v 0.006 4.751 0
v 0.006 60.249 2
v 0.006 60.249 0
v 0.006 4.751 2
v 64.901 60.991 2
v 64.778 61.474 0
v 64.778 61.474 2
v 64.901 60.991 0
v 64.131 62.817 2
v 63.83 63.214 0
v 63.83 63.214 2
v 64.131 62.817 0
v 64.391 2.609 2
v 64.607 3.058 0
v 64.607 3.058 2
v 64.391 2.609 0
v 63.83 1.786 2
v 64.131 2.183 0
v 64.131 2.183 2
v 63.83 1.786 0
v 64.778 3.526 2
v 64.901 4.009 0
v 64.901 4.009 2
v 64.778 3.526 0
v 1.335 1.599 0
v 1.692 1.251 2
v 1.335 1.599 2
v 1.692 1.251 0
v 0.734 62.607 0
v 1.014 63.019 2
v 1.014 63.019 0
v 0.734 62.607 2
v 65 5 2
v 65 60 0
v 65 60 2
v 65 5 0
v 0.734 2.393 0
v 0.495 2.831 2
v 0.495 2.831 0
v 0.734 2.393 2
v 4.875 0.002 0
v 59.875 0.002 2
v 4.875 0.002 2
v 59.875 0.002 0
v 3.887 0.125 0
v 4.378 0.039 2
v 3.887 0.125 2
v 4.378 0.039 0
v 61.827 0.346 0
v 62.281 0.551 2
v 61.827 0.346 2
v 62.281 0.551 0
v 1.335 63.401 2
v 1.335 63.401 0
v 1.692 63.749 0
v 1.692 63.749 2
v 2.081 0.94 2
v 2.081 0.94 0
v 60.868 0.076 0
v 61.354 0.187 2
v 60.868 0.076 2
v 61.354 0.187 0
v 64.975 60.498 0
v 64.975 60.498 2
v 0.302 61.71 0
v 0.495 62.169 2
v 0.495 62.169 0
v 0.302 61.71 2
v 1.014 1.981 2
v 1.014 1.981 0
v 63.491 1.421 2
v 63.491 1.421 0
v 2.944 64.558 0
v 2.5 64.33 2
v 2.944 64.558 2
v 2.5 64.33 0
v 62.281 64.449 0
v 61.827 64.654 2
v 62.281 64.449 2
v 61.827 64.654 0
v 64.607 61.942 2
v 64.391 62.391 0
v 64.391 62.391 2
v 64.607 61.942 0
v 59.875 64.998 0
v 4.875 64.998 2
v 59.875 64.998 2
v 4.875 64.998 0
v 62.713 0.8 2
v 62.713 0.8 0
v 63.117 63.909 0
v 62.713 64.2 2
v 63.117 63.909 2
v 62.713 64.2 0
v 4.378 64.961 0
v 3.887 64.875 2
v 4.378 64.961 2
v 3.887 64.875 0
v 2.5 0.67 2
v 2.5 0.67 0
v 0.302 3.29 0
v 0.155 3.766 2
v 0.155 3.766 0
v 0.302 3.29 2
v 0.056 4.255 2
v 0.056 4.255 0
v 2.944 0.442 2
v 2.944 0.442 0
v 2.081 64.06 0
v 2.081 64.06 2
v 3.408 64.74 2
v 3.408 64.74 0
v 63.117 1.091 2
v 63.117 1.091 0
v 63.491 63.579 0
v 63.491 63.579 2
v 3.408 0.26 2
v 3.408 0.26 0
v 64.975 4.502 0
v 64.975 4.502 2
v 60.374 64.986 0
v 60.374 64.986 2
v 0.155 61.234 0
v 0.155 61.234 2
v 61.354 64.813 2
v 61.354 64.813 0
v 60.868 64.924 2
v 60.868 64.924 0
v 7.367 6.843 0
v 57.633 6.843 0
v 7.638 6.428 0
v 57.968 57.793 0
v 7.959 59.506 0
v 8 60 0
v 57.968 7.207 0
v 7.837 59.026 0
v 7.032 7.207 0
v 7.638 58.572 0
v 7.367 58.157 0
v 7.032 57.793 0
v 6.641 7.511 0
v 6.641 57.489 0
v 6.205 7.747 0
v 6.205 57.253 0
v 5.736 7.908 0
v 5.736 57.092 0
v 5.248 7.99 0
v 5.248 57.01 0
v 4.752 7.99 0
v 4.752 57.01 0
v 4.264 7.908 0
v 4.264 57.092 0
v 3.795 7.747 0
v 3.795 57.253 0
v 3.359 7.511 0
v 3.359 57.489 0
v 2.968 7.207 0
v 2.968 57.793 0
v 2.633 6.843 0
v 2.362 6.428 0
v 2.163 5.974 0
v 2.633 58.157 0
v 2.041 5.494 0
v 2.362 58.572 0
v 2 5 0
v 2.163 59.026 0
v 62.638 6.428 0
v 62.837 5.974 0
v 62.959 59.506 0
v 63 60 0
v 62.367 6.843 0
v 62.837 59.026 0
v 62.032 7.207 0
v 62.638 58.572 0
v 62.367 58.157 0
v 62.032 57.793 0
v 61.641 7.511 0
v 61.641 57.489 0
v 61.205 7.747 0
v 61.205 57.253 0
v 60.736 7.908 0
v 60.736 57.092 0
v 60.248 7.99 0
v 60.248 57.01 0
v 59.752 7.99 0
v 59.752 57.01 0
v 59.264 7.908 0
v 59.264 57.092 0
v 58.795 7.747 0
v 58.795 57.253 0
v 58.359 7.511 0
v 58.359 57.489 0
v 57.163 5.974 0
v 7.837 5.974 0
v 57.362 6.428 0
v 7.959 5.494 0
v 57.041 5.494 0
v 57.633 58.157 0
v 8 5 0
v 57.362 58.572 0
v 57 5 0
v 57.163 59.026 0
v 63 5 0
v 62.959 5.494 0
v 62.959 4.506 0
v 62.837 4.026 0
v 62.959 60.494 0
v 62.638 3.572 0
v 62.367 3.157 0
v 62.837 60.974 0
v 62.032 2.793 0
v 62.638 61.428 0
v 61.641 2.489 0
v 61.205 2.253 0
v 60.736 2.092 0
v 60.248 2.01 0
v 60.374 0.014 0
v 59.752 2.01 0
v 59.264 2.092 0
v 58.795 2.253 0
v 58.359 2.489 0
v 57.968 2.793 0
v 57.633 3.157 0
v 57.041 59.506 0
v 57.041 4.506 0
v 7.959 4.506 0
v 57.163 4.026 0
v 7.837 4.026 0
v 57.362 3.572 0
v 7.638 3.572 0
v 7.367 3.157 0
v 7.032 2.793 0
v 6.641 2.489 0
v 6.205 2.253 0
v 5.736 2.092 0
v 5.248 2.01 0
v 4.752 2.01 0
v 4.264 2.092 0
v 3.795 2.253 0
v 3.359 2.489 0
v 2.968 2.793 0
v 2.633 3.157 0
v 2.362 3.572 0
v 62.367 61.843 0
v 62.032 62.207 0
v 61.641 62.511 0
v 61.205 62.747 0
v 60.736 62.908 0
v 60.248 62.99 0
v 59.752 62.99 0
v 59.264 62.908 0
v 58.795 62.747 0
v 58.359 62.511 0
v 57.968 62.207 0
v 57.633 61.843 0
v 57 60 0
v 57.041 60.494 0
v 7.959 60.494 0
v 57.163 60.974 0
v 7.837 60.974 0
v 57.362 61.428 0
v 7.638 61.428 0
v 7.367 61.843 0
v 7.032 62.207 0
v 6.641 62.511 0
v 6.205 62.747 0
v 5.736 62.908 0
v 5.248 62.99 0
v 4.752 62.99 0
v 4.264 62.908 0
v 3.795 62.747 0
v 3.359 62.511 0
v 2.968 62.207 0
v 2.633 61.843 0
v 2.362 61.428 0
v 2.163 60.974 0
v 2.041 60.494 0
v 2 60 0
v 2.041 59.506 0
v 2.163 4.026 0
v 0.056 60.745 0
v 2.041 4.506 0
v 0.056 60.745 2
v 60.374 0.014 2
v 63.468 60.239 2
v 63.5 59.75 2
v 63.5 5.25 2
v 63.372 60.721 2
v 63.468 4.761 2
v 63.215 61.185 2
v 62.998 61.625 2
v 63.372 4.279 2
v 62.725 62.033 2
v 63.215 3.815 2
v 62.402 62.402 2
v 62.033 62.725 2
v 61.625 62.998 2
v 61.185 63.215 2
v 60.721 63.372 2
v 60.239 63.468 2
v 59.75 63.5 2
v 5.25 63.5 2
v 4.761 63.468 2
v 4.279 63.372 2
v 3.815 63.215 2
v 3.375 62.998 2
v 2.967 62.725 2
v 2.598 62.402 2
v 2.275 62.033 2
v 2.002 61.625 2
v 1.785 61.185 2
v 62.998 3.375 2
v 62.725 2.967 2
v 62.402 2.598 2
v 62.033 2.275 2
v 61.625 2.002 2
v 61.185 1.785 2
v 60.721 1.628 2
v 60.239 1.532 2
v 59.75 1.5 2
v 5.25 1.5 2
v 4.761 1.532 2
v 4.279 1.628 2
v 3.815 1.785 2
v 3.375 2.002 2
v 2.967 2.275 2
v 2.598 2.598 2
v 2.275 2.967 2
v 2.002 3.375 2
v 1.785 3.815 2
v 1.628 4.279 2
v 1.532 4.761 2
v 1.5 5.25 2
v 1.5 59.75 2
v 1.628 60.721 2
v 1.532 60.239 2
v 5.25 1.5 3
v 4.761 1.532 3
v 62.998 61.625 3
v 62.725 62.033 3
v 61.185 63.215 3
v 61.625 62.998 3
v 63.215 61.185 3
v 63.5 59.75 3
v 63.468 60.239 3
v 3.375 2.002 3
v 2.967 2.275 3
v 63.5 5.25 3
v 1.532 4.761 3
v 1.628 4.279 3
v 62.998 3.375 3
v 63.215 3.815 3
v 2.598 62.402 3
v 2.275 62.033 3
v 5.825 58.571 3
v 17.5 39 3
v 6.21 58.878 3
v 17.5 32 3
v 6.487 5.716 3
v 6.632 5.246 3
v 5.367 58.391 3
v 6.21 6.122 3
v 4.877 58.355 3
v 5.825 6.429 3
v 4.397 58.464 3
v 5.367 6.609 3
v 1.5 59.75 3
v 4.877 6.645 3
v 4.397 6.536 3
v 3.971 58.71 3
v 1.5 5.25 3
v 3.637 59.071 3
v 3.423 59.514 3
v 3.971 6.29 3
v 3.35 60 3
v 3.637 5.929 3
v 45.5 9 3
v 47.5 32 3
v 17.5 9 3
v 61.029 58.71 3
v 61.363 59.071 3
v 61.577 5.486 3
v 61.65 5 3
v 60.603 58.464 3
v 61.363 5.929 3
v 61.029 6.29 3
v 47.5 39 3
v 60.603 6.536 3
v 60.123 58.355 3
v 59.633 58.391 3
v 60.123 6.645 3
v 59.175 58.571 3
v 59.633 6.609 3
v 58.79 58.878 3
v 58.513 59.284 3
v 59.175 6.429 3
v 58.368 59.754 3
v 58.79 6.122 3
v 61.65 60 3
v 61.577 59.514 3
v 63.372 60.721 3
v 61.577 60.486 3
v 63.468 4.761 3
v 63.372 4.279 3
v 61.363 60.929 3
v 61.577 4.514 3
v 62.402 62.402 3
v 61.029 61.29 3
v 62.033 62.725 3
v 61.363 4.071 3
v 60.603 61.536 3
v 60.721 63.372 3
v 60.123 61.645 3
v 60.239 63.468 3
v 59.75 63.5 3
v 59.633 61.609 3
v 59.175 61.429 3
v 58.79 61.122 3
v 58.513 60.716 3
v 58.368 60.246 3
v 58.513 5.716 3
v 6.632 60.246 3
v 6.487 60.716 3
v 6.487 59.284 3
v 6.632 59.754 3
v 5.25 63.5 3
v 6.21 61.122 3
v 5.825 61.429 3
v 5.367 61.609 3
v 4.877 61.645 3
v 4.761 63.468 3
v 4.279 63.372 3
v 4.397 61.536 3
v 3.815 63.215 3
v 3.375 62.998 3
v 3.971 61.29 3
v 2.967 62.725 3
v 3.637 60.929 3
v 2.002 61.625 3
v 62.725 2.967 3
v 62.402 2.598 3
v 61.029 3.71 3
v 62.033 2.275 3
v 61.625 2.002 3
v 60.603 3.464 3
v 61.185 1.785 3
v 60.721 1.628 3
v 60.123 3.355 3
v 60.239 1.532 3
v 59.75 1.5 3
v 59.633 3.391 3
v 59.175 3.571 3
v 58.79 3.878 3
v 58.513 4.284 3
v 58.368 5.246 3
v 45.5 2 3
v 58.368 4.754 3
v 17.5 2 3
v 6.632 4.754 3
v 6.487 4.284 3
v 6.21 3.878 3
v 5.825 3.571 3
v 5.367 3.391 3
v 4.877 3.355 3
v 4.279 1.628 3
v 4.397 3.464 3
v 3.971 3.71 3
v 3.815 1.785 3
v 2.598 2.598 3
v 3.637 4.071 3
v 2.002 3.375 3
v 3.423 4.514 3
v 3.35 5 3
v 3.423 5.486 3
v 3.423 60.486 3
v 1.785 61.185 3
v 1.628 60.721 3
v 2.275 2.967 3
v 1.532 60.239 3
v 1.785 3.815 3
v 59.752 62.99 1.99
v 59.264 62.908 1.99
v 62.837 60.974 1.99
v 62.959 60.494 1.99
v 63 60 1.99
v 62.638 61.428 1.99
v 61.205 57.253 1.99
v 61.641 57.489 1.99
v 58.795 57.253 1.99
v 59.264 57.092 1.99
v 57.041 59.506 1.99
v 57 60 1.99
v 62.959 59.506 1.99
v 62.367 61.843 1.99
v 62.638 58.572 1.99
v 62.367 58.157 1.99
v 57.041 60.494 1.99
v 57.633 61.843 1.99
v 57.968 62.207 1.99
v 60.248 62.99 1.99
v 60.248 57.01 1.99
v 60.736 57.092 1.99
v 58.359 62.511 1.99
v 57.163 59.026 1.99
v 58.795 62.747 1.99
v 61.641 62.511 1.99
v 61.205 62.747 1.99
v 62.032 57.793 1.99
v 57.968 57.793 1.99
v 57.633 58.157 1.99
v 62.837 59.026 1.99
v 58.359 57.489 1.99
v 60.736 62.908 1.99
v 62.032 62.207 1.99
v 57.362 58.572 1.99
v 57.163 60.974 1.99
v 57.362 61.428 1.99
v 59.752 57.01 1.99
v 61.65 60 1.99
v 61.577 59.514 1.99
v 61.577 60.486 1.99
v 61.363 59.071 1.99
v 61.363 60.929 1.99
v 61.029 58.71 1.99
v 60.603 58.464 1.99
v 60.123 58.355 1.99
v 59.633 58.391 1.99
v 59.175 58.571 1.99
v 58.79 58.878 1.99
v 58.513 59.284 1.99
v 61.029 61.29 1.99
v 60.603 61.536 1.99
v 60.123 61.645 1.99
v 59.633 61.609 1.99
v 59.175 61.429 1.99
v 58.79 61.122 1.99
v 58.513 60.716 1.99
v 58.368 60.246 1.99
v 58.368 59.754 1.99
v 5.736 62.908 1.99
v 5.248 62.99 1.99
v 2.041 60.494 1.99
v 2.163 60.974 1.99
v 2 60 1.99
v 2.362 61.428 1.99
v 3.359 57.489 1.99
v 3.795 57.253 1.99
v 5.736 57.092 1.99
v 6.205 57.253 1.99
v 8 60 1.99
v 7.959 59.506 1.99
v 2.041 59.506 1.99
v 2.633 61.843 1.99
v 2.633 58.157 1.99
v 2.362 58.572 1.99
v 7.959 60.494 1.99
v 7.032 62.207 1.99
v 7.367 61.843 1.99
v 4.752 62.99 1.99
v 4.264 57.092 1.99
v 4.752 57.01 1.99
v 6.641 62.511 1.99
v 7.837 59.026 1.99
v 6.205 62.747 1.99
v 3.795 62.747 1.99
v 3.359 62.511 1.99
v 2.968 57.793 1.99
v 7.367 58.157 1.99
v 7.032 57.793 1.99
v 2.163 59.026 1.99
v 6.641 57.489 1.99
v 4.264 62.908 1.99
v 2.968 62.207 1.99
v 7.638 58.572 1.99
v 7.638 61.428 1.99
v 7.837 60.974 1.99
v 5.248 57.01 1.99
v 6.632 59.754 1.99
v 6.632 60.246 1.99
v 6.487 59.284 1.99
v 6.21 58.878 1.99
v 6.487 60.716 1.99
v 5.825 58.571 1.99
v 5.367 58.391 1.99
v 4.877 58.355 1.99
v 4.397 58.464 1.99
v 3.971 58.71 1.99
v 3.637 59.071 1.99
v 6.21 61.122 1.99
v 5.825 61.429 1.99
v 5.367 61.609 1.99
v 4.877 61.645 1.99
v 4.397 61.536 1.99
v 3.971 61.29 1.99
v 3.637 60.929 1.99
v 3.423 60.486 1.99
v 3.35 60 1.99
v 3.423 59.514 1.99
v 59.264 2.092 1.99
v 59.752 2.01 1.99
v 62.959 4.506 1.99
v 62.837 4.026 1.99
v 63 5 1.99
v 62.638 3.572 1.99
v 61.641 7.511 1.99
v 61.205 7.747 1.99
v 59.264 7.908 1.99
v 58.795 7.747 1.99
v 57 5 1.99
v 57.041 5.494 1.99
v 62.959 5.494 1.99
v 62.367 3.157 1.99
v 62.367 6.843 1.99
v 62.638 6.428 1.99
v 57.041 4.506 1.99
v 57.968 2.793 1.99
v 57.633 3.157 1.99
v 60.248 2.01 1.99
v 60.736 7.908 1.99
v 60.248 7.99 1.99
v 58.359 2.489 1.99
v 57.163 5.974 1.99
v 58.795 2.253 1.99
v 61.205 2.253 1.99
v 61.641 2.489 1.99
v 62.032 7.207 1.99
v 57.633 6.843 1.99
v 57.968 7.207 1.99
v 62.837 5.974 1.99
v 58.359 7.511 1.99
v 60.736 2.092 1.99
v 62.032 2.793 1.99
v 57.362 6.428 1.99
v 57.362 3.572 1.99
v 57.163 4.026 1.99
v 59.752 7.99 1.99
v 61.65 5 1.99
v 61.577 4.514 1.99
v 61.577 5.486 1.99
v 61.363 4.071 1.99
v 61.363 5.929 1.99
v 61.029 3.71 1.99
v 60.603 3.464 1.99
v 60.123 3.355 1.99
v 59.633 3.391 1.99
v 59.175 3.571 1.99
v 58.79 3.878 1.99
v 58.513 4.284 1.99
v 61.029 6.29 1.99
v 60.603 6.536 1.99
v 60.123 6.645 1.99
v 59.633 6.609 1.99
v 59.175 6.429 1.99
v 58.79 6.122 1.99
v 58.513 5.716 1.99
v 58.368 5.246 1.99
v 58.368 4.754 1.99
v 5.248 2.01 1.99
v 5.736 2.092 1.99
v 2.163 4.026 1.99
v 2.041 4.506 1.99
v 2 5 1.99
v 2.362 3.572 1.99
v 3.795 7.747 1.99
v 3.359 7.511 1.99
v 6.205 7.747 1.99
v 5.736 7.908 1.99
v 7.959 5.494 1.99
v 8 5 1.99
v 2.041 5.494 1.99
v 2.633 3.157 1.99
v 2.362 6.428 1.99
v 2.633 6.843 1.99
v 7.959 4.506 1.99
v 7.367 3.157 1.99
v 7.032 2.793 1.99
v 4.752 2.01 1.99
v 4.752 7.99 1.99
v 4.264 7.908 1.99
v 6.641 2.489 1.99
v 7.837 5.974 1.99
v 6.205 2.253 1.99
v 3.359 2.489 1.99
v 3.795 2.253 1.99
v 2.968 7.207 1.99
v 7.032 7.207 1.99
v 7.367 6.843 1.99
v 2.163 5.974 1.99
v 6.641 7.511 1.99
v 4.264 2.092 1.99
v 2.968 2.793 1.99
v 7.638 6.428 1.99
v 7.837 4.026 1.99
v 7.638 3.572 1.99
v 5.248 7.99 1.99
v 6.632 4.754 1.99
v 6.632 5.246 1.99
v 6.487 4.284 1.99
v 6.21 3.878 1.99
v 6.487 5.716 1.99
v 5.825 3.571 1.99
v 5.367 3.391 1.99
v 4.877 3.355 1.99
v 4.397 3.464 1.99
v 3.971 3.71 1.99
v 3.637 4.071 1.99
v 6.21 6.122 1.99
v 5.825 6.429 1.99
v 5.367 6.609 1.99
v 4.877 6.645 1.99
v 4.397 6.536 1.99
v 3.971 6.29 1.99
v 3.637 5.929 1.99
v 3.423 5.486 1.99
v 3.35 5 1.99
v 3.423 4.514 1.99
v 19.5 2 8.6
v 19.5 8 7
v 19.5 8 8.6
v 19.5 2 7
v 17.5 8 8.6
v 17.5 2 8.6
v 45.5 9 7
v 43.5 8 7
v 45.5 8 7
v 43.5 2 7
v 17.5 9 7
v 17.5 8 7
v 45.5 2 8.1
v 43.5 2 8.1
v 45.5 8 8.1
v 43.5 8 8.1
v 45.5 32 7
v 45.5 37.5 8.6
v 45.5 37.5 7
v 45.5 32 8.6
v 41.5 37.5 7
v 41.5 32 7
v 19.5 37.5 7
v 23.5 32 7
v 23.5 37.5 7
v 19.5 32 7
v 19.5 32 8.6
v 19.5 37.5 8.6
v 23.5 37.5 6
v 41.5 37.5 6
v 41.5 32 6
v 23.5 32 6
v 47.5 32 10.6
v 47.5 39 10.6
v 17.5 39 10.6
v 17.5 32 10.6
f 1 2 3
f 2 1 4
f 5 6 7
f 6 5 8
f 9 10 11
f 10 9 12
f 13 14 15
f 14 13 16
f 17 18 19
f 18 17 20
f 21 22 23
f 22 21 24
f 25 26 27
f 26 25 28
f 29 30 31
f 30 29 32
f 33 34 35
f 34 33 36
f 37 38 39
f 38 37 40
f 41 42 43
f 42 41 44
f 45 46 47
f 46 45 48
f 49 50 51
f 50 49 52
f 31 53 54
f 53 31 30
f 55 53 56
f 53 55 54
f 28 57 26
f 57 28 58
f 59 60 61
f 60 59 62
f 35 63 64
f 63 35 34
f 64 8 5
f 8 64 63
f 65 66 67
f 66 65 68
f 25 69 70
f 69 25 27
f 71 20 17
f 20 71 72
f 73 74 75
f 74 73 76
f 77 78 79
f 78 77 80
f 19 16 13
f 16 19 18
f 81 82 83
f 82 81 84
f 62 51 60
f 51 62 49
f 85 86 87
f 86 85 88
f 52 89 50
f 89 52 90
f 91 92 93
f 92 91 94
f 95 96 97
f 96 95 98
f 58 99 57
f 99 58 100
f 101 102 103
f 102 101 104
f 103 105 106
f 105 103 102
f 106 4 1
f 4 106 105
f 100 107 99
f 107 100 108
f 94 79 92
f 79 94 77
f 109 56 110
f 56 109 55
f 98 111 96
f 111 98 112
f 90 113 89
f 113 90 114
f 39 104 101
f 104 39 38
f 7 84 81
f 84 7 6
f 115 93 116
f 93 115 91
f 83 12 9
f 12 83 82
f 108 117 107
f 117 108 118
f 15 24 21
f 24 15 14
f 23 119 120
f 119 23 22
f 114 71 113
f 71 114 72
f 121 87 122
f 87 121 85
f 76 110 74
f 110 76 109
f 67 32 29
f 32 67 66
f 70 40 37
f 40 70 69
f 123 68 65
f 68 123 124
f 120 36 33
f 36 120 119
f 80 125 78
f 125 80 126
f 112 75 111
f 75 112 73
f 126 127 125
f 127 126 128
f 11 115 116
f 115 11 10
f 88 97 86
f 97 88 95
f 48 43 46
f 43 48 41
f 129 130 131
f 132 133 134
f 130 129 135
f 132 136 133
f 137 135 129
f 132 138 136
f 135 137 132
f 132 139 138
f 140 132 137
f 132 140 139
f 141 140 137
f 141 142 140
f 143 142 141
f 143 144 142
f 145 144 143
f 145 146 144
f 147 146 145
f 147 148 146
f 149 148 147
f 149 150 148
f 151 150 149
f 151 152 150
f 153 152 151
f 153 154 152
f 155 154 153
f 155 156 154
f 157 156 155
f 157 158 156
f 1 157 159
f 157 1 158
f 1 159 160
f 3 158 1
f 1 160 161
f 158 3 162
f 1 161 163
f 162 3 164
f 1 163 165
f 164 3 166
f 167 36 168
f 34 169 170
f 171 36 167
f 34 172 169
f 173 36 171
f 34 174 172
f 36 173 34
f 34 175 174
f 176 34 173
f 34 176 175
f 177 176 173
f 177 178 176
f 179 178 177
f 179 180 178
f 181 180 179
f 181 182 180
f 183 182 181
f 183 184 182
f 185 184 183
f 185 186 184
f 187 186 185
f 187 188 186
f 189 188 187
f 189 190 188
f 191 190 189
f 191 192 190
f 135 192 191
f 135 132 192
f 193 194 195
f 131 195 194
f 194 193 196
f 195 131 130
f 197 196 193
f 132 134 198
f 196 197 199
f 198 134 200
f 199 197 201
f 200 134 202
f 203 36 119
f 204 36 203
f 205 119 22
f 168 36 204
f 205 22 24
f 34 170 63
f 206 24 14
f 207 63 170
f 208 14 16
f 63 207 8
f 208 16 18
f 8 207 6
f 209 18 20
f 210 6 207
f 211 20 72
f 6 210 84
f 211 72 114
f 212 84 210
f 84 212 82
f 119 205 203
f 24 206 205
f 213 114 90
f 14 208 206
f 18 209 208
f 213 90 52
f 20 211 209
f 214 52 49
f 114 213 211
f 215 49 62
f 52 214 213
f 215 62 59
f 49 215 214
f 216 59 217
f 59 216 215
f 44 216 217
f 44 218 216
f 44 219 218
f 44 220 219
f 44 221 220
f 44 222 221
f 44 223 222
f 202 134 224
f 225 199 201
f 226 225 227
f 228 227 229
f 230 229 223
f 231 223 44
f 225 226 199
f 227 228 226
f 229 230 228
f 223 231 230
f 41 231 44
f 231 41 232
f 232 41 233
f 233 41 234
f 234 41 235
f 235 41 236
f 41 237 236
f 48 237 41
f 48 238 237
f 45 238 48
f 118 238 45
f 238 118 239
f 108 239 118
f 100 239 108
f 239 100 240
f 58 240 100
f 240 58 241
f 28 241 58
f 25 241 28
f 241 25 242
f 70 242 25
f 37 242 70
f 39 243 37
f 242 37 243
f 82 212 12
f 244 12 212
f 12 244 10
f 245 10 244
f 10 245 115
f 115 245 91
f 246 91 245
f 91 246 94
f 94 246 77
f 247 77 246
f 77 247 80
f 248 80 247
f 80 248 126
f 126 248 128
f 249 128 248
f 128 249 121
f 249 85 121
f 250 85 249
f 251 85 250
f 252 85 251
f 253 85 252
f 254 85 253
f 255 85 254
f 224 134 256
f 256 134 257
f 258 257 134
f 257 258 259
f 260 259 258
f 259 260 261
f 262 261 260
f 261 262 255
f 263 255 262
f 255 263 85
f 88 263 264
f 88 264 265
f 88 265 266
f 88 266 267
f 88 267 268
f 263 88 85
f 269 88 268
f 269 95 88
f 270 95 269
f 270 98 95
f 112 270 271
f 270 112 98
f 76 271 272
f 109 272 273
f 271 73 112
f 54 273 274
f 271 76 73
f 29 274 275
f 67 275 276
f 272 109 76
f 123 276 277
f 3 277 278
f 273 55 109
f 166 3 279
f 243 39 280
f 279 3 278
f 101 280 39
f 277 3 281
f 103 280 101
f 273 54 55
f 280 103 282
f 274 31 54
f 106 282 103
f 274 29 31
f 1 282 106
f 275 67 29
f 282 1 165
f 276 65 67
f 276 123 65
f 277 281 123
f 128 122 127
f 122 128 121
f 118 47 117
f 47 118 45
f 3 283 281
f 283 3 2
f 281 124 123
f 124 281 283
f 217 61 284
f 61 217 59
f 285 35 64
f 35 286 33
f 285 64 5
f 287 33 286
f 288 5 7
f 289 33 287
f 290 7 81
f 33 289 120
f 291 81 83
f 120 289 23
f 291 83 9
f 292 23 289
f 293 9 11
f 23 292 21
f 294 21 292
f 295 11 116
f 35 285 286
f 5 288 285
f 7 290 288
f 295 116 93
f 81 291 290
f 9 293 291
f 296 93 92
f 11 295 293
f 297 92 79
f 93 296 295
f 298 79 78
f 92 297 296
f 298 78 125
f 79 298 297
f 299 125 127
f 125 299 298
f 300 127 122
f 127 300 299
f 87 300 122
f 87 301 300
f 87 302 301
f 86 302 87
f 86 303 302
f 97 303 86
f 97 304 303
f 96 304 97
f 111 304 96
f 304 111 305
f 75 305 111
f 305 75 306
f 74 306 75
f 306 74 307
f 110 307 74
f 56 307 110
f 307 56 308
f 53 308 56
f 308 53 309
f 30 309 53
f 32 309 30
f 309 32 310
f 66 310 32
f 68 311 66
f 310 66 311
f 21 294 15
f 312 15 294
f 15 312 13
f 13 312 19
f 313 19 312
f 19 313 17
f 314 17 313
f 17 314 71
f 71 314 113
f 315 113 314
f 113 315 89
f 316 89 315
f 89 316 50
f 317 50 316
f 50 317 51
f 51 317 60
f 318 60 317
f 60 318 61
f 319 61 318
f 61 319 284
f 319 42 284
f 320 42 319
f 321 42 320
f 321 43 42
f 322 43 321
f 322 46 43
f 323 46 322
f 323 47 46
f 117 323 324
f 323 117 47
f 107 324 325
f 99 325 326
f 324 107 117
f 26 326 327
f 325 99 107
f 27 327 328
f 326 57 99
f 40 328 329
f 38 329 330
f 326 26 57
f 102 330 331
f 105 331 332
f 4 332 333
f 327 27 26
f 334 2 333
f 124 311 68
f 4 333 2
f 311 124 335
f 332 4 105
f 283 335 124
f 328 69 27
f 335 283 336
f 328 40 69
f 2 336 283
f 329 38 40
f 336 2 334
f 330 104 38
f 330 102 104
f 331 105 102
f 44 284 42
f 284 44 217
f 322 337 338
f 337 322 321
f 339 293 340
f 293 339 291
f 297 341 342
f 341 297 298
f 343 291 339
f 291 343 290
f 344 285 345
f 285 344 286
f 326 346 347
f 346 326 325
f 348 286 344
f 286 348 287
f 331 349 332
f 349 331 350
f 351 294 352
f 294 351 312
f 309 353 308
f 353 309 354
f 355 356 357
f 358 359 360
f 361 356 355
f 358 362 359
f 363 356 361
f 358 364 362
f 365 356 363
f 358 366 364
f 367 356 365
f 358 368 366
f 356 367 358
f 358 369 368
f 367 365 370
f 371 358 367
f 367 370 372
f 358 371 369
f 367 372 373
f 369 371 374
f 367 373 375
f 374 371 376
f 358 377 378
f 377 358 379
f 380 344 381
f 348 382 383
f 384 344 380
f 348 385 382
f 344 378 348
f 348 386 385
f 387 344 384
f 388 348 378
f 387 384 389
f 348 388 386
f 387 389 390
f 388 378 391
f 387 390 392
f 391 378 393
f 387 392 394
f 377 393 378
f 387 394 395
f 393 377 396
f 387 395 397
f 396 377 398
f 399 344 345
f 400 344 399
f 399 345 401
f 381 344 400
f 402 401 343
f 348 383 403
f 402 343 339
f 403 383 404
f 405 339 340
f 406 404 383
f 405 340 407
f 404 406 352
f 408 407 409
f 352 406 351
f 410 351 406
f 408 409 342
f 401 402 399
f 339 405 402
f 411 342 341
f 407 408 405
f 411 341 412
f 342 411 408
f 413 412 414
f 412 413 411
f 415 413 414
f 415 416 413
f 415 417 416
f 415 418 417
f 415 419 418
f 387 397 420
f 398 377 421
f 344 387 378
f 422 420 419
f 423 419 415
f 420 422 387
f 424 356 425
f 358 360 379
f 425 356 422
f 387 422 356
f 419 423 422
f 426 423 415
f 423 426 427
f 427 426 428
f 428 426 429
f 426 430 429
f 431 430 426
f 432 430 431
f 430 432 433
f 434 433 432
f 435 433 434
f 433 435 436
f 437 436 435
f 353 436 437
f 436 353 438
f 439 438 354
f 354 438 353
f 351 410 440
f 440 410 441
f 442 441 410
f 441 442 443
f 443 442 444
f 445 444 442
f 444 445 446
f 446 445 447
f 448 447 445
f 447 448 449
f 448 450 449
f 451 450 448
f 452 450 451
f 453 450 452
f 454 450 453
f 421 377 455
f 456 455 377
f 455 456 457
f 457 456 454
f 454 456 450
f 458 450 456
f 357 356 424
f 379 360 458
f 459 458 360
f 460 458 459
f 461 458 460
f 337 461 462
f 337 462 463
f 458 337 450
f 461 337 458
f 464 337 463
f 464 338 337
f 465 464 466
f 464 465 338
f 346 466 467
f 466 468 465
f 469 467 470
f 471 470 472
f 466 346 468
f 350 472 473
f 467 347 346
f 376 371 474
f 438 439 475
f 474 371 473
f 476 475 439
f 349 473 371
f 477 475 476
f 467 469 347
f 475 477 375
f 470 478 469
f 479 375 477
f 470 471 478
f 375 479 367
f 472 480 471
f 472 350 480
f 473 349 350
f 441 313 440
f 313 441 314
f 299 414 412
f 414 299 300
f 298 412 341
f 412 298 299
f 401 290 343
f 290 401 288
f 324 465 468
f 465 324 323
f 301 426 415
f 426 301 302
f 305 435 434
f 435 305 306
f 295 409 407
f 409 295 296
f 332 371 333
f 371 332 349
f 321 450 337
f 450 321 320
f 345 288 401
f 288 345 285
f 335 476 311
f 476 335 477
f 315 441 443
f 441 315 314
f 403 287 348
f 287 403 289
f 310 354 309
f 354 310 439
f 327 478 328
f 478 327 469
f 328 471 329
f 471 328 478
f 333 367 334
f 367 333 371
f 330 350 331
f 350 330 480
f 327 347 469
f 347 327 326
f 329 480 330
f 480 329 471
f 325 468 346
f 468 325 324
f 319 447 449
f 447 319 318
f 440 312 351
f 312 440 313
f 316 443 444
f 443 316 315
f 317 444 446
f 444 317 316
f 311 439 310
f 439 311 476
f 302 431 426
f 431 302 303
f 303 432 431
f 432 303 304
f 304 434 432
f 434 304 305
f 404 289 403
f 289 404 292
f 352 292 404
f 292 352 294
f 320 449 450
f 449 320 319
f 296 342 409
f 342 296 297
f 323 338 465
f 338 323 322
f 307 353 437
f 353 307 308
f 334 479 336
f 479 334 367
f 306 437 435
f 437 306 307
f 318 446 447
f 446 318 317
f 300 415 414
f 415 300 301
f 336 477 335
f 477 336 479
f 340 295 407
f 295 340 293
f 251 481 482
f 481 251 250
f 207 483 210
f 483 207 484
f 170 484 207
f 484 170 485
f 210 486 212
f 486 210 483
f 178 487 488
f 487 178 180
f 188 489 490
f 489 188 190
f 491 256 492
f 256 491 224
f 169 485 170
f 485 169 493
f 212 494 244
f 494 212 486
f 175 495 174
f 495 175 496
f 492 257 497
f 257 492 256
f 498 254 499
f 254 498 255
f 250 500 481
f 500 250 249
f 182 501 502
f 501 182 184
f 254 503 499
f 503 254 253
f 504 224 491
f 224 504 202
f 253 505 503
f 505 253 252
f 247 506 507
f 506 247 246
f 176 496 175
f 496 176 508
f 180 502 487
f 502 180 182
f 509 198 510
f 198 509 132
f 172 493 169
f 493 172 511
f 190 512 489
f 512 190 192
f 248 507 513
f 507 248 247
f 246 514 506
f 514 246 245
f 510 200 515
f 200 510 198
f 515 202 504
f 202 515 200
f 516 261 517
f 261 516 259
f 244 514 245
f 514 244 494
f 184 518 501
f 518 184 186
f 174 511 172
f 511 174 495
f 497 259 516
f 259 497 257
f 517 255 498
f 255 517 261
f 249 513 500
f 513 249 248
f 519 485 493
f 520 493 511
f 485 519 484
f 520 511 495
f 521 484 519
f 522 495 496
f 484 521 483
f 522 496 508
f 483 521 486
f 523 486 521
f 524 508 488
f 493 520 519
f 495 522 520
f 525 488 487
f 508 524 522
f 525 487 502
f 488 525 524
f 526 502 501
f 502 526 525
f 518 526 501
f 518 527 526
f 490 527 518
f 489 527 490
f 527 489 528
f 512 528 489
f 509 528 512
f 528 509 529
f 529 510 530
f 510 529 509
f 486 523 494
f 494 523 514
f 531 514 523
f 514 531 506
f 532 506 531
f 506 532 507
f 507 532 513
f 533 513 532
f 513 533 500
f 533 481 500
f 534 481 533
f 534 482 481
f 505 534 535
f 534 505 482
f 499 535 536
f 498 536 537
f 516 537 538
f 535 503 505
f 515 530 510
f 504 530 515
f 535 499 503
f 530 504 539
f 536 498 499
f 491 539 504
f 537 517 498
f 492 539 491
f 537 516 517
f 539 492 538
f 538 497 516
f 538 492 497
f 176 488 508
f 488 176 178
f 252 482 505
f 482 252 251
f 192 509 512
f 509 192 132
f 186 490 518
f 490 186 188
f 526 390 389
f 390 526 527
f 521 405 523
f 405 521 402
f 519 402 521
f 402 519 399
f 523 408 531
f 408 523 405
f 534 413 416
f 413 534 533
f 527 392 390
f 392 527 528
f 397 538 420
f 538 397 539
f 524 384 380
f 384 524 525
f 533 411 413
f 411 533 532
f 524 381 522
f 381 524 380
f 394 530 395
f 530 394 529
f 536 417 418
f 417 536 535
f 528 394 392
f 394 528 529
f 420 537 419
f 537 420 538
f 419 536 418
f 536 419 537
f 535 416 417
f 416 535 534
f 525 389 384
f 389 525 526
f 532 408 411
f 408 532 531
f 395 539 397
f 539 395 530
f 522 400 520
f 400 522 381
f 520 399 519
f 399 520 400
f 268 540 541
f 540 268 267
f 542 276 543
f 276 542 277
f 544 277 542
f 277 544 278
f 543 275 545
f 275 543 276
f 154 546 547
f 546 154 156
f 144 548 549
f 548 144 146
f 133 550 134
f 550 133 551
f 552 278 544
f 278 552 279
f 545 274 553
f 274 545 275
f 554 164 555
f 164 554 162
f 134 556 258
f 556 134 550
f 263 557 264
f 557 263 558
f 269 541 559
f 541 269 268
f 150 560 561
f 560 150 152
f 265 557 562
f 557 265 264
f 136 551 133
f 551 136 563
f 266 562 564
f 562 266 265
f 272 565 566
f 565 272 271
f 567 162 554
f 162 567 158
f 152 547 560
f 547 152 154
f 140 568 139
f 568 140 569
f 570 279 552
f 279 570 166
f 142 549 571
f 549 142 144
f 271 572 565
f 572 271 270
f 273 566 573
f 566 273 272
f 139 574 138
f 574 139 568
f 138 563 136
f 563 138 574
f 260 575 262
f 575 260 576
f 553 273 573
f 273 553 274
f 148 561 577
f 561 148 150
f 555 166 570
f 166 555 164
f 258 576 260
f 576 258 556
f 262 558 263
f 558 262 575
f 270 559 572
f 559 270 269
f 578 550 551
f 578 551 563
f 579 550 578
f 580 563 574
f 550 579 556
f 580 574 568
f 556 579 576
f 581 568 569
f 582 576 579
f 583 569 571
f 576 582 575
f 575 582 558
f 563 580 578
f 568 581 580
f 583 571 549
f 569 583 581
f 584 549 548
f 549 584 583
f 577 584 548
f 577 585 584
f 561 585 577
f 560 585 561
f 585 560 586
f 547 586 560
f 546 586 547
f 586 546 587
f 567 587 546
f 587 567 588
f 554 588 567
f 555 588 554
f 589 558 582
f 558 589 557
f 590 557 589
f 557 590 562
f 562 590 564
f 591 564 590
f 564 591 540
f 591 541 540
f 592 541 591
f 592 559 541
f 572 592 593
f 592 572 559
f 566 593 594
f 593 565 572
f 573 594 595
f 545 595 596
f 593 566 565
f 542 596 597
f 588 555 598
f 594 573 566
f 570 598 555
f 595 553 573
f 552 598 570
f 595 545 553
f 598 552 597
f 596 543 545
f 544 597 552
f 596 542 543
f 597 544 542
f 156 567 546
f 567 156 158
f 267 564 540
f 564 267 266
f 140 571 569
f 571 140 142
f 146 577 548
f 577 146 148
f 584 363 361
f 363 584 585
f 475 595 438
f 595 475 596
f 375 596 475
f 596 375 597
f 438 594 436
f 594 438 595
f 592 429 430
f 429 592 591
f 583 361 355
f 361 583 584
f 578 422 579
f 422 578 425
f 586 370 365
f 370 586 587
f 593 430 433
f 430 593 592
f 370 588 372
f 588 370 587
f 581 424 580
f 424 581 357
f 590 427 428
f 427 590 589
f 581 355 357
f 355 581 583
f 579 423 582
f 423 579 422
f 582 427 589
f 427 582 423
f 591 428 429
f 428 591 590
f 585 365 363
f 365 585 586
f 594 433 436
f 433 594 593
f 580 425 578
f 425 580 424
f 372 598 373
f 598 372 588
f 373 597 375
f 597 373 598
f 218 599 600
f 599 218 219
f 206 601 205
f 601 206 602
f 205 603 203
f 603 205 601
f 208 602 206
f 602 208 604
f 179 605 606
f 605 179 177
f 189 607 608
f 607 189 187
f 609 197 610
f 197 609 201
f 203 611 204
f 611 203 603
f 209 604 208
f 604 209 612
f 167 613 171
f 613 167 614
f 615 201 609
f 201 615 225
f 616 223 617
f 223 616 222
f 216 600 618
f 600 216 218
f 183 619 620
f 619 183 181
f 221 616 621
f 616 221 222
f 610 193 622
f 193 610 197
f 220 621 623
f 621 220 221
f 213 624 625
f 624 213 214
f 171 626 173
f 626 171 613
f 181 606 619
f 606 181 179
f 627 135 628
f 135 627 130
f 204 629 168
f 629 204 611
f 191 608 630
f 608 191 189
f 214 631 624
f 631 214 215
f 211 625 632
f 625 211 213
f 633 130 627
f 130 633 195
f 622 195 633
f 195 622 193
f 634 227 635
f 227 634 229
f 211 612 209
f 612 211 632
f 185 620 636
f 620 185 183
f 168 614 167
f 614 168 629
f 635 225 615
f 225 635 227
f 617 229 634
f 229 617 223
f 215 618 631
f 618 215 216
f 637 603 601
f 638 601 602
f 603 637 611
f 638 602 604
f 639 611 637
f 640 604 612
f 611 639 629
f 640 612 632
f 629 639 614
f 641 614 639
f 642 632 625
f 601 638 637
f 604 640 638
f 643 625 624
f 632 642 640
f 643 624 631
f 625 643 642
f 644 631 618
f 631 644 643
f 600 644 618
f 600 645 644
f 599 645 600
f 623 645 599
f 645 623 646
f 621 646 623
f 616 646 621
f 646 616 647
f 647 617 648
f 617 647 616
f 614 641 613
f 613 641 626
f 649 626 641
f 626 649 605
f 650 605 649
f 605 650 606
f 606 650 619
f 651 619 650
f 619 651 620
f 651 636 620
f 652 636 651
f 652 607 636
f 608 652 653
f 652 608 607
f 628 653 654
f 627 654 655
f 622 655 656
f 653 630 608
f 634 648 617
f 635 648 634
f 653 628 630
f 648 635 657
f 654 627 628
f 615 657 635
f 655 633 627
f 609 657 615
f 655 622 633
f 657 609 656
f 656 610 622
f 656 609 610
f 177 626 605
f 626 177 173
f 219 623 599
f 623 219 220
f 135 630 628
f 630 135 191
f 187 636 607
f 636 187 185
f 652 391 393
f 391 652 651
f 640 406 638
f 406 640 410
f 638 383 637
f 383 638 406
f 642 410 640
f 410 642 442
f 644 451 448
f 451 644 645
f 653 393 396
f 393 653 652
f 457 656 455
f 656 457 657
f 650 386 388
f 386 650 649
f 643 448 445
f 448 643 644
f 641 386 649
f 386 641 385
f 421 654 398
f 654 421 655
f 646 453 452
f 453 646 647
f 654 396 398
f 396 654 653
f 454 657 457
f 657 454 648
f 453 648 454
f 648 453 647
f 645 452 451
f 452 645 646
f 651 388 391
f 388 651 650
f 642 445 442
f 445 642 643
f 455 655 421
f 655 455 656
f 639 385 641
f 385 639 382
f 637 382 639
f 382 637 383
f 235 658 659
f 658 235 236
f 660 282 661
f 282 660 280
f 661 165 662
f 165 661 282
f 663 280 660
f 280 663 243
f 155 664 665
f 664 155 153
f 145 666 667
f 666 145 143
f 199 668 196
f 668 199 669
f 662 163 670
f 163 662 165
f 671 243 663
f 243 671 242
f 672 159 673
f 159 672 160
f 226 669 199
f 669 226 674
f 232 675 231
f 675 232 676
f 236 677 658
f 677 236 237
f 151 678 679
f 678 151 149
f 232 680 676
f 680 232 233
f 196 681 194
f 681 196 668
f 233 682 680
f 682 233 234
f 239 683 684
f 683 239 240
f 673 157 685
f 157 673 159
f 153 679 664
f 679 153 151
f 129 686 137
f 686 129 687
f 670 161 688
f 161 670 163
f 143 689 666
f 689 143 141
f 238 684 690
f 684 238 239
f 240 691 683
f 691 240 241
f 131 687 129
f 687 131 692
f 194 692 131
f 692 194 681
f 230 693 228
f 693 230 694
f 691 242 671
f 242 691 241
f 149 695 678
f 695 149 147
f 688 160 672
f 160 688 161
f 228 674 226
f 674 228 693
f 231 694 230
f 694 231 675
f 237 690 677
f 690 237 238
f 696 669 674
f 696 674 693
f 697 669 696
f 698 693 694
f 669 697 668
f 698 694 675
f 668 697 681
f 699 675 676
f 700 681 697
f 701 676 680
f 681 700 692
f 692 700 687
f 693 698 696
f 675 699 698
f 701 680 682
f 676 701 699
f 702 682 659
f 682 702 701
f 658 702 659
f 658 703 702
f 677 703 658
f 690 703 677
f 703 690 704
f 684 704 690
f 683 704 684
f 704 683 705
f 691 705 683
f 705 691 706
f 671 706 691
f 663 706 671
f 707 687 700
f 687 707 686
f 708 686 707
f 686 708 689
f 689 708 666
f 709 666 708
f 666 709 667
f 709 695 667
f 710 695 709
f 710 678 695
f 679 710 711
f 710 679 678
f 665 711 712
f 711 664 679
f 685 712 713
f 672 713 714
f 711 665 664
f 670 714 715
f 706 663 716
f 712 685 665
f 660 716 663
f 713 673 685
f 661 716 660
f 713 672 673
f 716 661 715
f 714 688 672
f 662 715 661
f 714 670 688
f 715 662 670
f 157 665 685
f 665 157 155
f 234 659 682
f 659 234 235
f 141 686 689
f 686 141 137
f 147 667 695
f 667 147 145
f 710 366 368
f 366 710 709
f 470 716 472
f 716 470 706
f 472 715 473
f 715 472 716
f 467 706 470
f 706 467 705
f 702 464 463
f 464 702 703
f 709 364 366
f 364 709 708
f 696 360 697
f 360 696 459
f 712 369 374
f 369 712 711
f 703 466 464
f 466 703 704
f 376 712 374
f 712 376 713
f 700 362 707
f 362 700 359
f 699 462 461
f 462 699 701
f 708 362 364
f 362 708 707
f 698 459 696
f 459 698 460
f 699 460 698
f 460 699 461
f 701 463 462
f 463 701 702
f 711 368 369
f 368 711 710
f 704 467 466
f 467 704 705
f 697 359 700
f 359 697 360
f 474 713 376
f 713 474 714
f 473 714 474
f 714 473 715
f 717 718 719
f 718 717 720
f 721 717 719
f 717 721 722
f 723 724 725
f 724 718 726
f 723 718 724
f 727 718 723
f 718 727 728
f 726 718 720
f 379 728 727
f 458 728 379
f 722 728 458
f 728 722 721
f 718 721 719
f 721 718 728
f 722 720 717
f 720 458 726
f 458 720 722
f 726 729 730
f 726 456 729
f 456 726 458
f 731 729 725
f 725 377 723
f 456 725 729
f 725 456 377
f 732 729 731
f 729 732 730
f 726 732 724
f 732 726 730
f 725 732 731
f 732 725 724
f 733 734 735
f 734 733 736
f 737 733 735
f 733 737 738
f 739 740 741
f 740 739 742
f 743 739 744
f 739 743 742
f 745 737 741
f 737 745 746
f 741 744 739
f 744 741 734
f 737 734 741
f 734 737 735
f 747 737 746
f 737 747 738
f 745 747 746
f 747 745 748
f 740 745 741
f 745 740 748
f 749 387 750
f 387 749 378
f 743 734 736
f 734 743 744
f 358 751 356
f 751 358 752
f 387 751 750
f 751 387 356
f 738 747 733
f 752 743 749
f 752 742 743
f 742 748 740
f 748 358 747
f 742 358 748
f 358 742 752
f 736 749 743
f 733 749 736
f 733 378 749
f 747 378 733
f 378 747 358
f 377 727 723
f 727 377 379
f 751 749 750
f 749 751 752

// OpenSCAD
// file: shapes.scad
module rounded_square(size, round_radius) {
  translate([round_radius, round_radius])
    minkowski() {
      circle(r=round_radius);
      square(size - [round_radius*2, round_radius*2]);
    };
}

module rounded_cube(size, round_radius) {
  linear_extrude(height=size.z)
    rounded_square([size.x, size.y], round_radius);
}
// file: baffles.scad
inner_dia = 45;
outer_dia = 55;

leds = 40;
rot_offset = 3.6;

wall = 1;

m3_heatset_depth = 4.5;
m3_heatset_dia = 4;
m3_heatset_standoffs = 7;

height = m3_heatset_depth;
smidge = 0.01;

$fa=0.5;
$fs=0.5;

module led_baffles() {
  difference() {
    cylinder(h=height, d=outer_dia);

    translate([0, 0, -smidge])
      cylinder(h=height + smidge * 2, d=outer_dia - 1.5);
  }

  for (rot = [0 : 360/leds : 360])
    rotate([0, 0, rot + rot_offset])
      rotate_extrude(angle=2)
        translate([inner_dia/2 - smidge, 0])
          square([(outer_dia - inner_dia)/2, height]);

  difference() {
    cylinder(h=height, d=inner_dia);

    translate([0, 0, -smidge])
      cylinder(h=height + smidge * 2, d=inner_dia - 2);
  }

  for (rot = [0 : 90 : 360])
    rotate([0, 0, rot + 45])
      translate([61/2, 0, 0])
        difference() {
          cylinder(d=m3_heatset_standoffs, h=height);
          translate([0, 0, -smidge])
            cylinder(d=m3_heatset_dia, h=height + smidge * 2);
        }
}
// file: esp-box/shapes.scad
module rounded_square(size, round_radius) {
  translate([round_radius, round_radius])
    minkowski() {
      circle(r=round_radius);
      square(size - [round_radius*2, round_radius*2]);
    };
}

module rounded_cube(size, round_radius) {
  linear_extrude(height=size.z)
    rounded_square([size.x, size.y], round_radius);
}
// file: housing.scad
use <esp-box/esp_box.scad>
use <baffles.scad>
use <shapes.scad>

body_size = [65, 65, 30];
body_round_radius = 5;

$fs=0.5;
$fa=0.5;

m3_dia = 3.3;

wall_thicknesses = [2, 2, 3];

smidge = 0.01;

module top_laser_cut_plate() {
  heatset_sides = 5;

  difference() {
    rounded_square(xy(body_size), body_round_radius);

    translate(xy(body_size)/2) {
      for (flip_y = [0, 1])
	for (flip_x = [0, 1])
	  mirror([0, flip_y, 0])
	    mirror([flip_x, 0, 0])
	      translate(xy(body_size)/2)
		translate([-heatset_sides, -heatset_sides])
		  circle(d=m3_dia);
      circle(d=7);
    }
  }
}

module top() {
  m3_heatset_dia = 4;

  difference() {
    esp_box_top(body_size, body_round_radius, wall_thicknesses, top_holes=true);
    translate([body_size.x/2, body_size.y/2, -smidge]) {
      cylinder(d=55 - smidge * 2, h=wall_thicknesses.z + smidge * 2);
    }


    translate([body_size.x/2, body_size.y/2, 0]) 
      for (rot = [0 : 90 : 360])
	rotate([0, 0, rot + 45])
	  translate([61/2, 0, 0])
	    difference() {
	      translate([0, 0, -smidge])
		cylinder(d=m3_heatset_dia, h=wall_thicknesses.z + smidge * 2);
	    }
  }
    translate([body_size.x/2, body_size.y/2, 0]) {
      led_baffles();

      translate([0, 0, -smidge])
	difference() {
	  cylinder(d=45, h=2);

	  translate([0, 0, -smidge])
	    cube([13, 13, 5], center=true);
	}
    }
}
// file: esp-box/esp_box.scad
use <shapes.scad>;

$fs=0.5;
$fa=0.5;

bottom_lip = 1;

m3_heatset_depth = 4.5;
m3_heatset_dia = 4;
heatset_sides = 5;

m3_button_head_depth = 2;
m3_button_head_dia = 6;
m3_screw_dia = 3.3;

usb_cord_cutout = [12, 10];

d1_mini_board = [26, 35, 1.1];
board_lift = 4;

function center_xy(a, b) = [(a.x - b.x)/2, (a.y - b.y)/2, 0];
function center_x(a, b) = [(a.x - b.x)/2, 0, 0];
function center_y(a, b) = [0, (a.y - b.y)/2, 0];
function xy(a) = [a.x, a.y, 0];
function xy_z(a, z) = [a.x, a.y, z];

smidge = 0.01;

module esp_box_mockup_cutaway(body_size, body_round_radius, wall_thicknesses) {
  intersection() {
    esp_box_mockup(body_size, body_round_radius, wall_thicknesses);
    translate([0, 0, -10])
      cube([body_size.x/2, 100, 100]);
  }
  %translate([0, 0, -bottom_wall_thickness])
    cube(body_size);
}

module esp_box_mockup(body_size, body_round_radius, wall_thicknesses) {
  wall_thickness = wall_thicknesses[0];
  top_wall_thickness = wall_thicknesses[1];
  bottom_wall_thickness = wall_thicknesses[2];
  //intersection() { union() {
  translate([0, wall_thickness, board_lift])
    translate(center_x(body_size, d1_mini_board))
      d1_mini_mockup();

  color("green")
  translate([0, 0, -bottom_lip])
  esp_box_top_upright(body_size, body_round_radius, wall_thicknesses);
  color("red")
  translate([0, 0, -bottom_wall_thickness])
    esp_box_bottom(body_size, body_round_radius, wall_thicknesses);
}

module esp_box_bottom(body_size, body_round_radius, wall_thicknesses) {
  wall_thickness = wall_thicknesses[0];
  top_wall_thickness = wall_thicknesses[1];
  bottom_wall_thickness = wall_thicknesses[2];
  inner_body = body_size - [wall_thickness, wall_thickness, top_wall_thickness];

  difference() {
    union() {
      rounded_cube(xy_z(body_size, bottom_wall_thickness - bottom_lip), body_round_radius);
      mating_clearance = 0.5;
      inner_body_clearance = inner_body - [mating_clearance * 2, mating_clearance * 2, 0];
      translate(center_xy(body_size, inner_body_clearance))
        rounded_cube(xy_z(inner_body_clearance, bottom_wall_thickness), body_round_radius - (wall_thickness + mating_clearance)/2);
    }

    translate(xy(body_size)/2)
      for (flip_y = [0, 1])
        for (flip_x = [0, 1])
          mirror([0, flip_y, 0])
            mirror([flip_x, 0, 0])
              translate(xy(body_size)/2)
                translate([-heatset_sides, -heatset_sides, -smidge]) {
                  cylinder(d=m3_button_head_dia, h=m3_button_head_depth);
                  cylinder(d=m3_screw_dia, h=6);
                }
  }

  translate(center_x(body_size, d1_mini_board))
    translate([0, wall_thickness, bottom_wall_thickness])
      d1_mini_holder();
}

module d1_mini_holder(body_size) {
  brace = 5;
  wall = 2;
  board_lip = d1_mini_board.z + 0.5;
  board_extra = 0.5;

  translate([-wall, 0])
    cube([d1_mini_board.x + 2, brace + wall, board_lift]);
    translate([0, 0, board_lift]) {
      for (x = [-wall, d1_mini_board.x - wall])
        translate([x, 0])
          cube([wall, brace + 1, x < 0 ? board_lip : board_lip - 0.5]);
    }
    difference() {
      translate([-wall, d1_mini_board.y - brace])
        cube([d1_mini_board.x + wall * 2, brace + wall, board_lift + board_lip]);
      translate([0, 0, board_lift]) {
        cube(xy_z(d1_mini_board, 3) + [0, board_extra, 0]);
        cutout = [18, brace + board_extra, 1];
        translate(center_x(d1_mini_board, cutout) + [0, d1_mini_board.y - brace - smidge, -cutout.z])
          cube(cutout + [0, smidge, smidge]);
      }
    }
    translate([-wall, d1_mini_board.y - brace, board_lift + board_lip])
      cube([d1_mini_board.x + wall * 2, brace + wall, 2]);
}

module d1_mini_mockup() {
  board = d1_mini_board;
  usb_port = [7.5, 5, 2];
  wifi = [12, 15, 3.1];

  translate([0, 0, 0]) {
    difference() {
      color("blue")
        cube(board);
      translate([board.x - 2 + smidge, -smidge, -smidge])
        cube([2, 7, 2]);
    }

  color("silver")
    translate([0, 0, board.z])
      translate(center_x(board, usb_port))
        cube(usb_port);
    }

  color("silver")
      translate([0, 0, -wifi.z])
      translate(center_xy(board, wifi))
        cube(wifi);
}

module esp_box_top(body_size, body_round_radius, wall_thicknesses, top_holes=false) {
  translate([body_size.x, 0, body_size.z - wall_thicknesses[1]])
  rotate([0, 180, 0])
  esp_box_top_upright(body_size, body_round_radius, wall_thicknesses, top_holes=top_holes);
}

module esp_box_top_upright(body_size, body_round_radius, wall_thicknesses, top_holes=false) {
  wall_thickness = wall_thicknesses[0];
  top_wall_thickness = wall_thicknesses[1];
  bottom_wall_thickness = wall_thicknesses[2];
  inner_body = body_size - [wall_thickness, wall_thickness, top_wall_thickness + bottom_wall_thickness - bottom_lip];

  difference() {
    rounded_cube(body_size - [0, 0, bottom_wall_thickness - bottom_lip], body_round_radius);

    usb_cord_cutout_3d = [usb_cord_cutout.x, wall_thickness * 2, usb_cord_cutout.y + smidge];
    translate([0, -smidge, -smidge])
    translate(center_x(body_size, usb_cord_cutout_3d))
      cube(usb_cord_cutout_3d);

    translate([0, 0, -smidge])
      translate(center_xy(body_size, inner_body))
        rounded_cube(xy_z(inner_body, bottom_lip + smidge), body_round_radius - wall_thickness/2);

    difference() {
      translate([0, 0, -smidge])
        translate(center_xy(body_size, inner_body))
          rounded_cube(inner_body + [0, 0, bottom_lip + smidge], body_round_radius - wall_thickness/2);

      if (top_holes) {
        translate(xy(body_size)/2)
          for (flip_y = [0, 1])
            for (flip_x = [0, 1])
              mirror([0, flip_y, 0])
                mirror([flip_x, 0, 0])
                  translate(xy(body_size)/2)
                    translate([-heatset_sides/2 - wall_thicknesses.x,
                               -heatset_sides/2 - wall_thicknesses.x,
                               0])
                      cylinder(r=heatset_sides, h=30);
      } else {
        translate(xy(body_size)/2)
          for (flip_y = [0, 1])
            for (flip_x = [0, 1])
              mirror([0, flip_y, 0])
                mirror([flip_x, 0, 0])
                  translate(xy(body_size)/2)
                    rotate([-25, 0, -45])
                      translate([0, -heatset_sides - 1, -8])
                        cylinder(r=heatset_sides, h=30);
      }
    }

    if (top_holes) {
      translate(xy(body_size)/2)
        for (flip_y = [0, 1])
          for (flip_x = [0, 1])
            mirror([0, flip_y, 0])
              mirror([flip_x, 0, 0])
                translate(xy(body_size)/2)
                  translate([-heatset_sides, -heatset_sides, -smidge])
                    cylinder(d=m3_heatset_dia, h=body_size.z);
    } else {
      translate(xy(body_size)/2)
        for (flip_y = [0, 1])
          for (flip_x = [0, 1])
            mirror([0, flip_y, 0])
              mirror([flip_x, 0, 0])
                translate(xy(body_size)/2)
                  translate([-heatset_sides, -heatset_sides, -smidge])
                    cylinder(d=m3_heatset_dia, h=m3_heatset_depth);
    }
  }
}
// main file
use <esp-box/esp_box.scad>
include <housing.scad>

esp_box_bottom(body_size, body_round_radius, wall_thicknesses);
